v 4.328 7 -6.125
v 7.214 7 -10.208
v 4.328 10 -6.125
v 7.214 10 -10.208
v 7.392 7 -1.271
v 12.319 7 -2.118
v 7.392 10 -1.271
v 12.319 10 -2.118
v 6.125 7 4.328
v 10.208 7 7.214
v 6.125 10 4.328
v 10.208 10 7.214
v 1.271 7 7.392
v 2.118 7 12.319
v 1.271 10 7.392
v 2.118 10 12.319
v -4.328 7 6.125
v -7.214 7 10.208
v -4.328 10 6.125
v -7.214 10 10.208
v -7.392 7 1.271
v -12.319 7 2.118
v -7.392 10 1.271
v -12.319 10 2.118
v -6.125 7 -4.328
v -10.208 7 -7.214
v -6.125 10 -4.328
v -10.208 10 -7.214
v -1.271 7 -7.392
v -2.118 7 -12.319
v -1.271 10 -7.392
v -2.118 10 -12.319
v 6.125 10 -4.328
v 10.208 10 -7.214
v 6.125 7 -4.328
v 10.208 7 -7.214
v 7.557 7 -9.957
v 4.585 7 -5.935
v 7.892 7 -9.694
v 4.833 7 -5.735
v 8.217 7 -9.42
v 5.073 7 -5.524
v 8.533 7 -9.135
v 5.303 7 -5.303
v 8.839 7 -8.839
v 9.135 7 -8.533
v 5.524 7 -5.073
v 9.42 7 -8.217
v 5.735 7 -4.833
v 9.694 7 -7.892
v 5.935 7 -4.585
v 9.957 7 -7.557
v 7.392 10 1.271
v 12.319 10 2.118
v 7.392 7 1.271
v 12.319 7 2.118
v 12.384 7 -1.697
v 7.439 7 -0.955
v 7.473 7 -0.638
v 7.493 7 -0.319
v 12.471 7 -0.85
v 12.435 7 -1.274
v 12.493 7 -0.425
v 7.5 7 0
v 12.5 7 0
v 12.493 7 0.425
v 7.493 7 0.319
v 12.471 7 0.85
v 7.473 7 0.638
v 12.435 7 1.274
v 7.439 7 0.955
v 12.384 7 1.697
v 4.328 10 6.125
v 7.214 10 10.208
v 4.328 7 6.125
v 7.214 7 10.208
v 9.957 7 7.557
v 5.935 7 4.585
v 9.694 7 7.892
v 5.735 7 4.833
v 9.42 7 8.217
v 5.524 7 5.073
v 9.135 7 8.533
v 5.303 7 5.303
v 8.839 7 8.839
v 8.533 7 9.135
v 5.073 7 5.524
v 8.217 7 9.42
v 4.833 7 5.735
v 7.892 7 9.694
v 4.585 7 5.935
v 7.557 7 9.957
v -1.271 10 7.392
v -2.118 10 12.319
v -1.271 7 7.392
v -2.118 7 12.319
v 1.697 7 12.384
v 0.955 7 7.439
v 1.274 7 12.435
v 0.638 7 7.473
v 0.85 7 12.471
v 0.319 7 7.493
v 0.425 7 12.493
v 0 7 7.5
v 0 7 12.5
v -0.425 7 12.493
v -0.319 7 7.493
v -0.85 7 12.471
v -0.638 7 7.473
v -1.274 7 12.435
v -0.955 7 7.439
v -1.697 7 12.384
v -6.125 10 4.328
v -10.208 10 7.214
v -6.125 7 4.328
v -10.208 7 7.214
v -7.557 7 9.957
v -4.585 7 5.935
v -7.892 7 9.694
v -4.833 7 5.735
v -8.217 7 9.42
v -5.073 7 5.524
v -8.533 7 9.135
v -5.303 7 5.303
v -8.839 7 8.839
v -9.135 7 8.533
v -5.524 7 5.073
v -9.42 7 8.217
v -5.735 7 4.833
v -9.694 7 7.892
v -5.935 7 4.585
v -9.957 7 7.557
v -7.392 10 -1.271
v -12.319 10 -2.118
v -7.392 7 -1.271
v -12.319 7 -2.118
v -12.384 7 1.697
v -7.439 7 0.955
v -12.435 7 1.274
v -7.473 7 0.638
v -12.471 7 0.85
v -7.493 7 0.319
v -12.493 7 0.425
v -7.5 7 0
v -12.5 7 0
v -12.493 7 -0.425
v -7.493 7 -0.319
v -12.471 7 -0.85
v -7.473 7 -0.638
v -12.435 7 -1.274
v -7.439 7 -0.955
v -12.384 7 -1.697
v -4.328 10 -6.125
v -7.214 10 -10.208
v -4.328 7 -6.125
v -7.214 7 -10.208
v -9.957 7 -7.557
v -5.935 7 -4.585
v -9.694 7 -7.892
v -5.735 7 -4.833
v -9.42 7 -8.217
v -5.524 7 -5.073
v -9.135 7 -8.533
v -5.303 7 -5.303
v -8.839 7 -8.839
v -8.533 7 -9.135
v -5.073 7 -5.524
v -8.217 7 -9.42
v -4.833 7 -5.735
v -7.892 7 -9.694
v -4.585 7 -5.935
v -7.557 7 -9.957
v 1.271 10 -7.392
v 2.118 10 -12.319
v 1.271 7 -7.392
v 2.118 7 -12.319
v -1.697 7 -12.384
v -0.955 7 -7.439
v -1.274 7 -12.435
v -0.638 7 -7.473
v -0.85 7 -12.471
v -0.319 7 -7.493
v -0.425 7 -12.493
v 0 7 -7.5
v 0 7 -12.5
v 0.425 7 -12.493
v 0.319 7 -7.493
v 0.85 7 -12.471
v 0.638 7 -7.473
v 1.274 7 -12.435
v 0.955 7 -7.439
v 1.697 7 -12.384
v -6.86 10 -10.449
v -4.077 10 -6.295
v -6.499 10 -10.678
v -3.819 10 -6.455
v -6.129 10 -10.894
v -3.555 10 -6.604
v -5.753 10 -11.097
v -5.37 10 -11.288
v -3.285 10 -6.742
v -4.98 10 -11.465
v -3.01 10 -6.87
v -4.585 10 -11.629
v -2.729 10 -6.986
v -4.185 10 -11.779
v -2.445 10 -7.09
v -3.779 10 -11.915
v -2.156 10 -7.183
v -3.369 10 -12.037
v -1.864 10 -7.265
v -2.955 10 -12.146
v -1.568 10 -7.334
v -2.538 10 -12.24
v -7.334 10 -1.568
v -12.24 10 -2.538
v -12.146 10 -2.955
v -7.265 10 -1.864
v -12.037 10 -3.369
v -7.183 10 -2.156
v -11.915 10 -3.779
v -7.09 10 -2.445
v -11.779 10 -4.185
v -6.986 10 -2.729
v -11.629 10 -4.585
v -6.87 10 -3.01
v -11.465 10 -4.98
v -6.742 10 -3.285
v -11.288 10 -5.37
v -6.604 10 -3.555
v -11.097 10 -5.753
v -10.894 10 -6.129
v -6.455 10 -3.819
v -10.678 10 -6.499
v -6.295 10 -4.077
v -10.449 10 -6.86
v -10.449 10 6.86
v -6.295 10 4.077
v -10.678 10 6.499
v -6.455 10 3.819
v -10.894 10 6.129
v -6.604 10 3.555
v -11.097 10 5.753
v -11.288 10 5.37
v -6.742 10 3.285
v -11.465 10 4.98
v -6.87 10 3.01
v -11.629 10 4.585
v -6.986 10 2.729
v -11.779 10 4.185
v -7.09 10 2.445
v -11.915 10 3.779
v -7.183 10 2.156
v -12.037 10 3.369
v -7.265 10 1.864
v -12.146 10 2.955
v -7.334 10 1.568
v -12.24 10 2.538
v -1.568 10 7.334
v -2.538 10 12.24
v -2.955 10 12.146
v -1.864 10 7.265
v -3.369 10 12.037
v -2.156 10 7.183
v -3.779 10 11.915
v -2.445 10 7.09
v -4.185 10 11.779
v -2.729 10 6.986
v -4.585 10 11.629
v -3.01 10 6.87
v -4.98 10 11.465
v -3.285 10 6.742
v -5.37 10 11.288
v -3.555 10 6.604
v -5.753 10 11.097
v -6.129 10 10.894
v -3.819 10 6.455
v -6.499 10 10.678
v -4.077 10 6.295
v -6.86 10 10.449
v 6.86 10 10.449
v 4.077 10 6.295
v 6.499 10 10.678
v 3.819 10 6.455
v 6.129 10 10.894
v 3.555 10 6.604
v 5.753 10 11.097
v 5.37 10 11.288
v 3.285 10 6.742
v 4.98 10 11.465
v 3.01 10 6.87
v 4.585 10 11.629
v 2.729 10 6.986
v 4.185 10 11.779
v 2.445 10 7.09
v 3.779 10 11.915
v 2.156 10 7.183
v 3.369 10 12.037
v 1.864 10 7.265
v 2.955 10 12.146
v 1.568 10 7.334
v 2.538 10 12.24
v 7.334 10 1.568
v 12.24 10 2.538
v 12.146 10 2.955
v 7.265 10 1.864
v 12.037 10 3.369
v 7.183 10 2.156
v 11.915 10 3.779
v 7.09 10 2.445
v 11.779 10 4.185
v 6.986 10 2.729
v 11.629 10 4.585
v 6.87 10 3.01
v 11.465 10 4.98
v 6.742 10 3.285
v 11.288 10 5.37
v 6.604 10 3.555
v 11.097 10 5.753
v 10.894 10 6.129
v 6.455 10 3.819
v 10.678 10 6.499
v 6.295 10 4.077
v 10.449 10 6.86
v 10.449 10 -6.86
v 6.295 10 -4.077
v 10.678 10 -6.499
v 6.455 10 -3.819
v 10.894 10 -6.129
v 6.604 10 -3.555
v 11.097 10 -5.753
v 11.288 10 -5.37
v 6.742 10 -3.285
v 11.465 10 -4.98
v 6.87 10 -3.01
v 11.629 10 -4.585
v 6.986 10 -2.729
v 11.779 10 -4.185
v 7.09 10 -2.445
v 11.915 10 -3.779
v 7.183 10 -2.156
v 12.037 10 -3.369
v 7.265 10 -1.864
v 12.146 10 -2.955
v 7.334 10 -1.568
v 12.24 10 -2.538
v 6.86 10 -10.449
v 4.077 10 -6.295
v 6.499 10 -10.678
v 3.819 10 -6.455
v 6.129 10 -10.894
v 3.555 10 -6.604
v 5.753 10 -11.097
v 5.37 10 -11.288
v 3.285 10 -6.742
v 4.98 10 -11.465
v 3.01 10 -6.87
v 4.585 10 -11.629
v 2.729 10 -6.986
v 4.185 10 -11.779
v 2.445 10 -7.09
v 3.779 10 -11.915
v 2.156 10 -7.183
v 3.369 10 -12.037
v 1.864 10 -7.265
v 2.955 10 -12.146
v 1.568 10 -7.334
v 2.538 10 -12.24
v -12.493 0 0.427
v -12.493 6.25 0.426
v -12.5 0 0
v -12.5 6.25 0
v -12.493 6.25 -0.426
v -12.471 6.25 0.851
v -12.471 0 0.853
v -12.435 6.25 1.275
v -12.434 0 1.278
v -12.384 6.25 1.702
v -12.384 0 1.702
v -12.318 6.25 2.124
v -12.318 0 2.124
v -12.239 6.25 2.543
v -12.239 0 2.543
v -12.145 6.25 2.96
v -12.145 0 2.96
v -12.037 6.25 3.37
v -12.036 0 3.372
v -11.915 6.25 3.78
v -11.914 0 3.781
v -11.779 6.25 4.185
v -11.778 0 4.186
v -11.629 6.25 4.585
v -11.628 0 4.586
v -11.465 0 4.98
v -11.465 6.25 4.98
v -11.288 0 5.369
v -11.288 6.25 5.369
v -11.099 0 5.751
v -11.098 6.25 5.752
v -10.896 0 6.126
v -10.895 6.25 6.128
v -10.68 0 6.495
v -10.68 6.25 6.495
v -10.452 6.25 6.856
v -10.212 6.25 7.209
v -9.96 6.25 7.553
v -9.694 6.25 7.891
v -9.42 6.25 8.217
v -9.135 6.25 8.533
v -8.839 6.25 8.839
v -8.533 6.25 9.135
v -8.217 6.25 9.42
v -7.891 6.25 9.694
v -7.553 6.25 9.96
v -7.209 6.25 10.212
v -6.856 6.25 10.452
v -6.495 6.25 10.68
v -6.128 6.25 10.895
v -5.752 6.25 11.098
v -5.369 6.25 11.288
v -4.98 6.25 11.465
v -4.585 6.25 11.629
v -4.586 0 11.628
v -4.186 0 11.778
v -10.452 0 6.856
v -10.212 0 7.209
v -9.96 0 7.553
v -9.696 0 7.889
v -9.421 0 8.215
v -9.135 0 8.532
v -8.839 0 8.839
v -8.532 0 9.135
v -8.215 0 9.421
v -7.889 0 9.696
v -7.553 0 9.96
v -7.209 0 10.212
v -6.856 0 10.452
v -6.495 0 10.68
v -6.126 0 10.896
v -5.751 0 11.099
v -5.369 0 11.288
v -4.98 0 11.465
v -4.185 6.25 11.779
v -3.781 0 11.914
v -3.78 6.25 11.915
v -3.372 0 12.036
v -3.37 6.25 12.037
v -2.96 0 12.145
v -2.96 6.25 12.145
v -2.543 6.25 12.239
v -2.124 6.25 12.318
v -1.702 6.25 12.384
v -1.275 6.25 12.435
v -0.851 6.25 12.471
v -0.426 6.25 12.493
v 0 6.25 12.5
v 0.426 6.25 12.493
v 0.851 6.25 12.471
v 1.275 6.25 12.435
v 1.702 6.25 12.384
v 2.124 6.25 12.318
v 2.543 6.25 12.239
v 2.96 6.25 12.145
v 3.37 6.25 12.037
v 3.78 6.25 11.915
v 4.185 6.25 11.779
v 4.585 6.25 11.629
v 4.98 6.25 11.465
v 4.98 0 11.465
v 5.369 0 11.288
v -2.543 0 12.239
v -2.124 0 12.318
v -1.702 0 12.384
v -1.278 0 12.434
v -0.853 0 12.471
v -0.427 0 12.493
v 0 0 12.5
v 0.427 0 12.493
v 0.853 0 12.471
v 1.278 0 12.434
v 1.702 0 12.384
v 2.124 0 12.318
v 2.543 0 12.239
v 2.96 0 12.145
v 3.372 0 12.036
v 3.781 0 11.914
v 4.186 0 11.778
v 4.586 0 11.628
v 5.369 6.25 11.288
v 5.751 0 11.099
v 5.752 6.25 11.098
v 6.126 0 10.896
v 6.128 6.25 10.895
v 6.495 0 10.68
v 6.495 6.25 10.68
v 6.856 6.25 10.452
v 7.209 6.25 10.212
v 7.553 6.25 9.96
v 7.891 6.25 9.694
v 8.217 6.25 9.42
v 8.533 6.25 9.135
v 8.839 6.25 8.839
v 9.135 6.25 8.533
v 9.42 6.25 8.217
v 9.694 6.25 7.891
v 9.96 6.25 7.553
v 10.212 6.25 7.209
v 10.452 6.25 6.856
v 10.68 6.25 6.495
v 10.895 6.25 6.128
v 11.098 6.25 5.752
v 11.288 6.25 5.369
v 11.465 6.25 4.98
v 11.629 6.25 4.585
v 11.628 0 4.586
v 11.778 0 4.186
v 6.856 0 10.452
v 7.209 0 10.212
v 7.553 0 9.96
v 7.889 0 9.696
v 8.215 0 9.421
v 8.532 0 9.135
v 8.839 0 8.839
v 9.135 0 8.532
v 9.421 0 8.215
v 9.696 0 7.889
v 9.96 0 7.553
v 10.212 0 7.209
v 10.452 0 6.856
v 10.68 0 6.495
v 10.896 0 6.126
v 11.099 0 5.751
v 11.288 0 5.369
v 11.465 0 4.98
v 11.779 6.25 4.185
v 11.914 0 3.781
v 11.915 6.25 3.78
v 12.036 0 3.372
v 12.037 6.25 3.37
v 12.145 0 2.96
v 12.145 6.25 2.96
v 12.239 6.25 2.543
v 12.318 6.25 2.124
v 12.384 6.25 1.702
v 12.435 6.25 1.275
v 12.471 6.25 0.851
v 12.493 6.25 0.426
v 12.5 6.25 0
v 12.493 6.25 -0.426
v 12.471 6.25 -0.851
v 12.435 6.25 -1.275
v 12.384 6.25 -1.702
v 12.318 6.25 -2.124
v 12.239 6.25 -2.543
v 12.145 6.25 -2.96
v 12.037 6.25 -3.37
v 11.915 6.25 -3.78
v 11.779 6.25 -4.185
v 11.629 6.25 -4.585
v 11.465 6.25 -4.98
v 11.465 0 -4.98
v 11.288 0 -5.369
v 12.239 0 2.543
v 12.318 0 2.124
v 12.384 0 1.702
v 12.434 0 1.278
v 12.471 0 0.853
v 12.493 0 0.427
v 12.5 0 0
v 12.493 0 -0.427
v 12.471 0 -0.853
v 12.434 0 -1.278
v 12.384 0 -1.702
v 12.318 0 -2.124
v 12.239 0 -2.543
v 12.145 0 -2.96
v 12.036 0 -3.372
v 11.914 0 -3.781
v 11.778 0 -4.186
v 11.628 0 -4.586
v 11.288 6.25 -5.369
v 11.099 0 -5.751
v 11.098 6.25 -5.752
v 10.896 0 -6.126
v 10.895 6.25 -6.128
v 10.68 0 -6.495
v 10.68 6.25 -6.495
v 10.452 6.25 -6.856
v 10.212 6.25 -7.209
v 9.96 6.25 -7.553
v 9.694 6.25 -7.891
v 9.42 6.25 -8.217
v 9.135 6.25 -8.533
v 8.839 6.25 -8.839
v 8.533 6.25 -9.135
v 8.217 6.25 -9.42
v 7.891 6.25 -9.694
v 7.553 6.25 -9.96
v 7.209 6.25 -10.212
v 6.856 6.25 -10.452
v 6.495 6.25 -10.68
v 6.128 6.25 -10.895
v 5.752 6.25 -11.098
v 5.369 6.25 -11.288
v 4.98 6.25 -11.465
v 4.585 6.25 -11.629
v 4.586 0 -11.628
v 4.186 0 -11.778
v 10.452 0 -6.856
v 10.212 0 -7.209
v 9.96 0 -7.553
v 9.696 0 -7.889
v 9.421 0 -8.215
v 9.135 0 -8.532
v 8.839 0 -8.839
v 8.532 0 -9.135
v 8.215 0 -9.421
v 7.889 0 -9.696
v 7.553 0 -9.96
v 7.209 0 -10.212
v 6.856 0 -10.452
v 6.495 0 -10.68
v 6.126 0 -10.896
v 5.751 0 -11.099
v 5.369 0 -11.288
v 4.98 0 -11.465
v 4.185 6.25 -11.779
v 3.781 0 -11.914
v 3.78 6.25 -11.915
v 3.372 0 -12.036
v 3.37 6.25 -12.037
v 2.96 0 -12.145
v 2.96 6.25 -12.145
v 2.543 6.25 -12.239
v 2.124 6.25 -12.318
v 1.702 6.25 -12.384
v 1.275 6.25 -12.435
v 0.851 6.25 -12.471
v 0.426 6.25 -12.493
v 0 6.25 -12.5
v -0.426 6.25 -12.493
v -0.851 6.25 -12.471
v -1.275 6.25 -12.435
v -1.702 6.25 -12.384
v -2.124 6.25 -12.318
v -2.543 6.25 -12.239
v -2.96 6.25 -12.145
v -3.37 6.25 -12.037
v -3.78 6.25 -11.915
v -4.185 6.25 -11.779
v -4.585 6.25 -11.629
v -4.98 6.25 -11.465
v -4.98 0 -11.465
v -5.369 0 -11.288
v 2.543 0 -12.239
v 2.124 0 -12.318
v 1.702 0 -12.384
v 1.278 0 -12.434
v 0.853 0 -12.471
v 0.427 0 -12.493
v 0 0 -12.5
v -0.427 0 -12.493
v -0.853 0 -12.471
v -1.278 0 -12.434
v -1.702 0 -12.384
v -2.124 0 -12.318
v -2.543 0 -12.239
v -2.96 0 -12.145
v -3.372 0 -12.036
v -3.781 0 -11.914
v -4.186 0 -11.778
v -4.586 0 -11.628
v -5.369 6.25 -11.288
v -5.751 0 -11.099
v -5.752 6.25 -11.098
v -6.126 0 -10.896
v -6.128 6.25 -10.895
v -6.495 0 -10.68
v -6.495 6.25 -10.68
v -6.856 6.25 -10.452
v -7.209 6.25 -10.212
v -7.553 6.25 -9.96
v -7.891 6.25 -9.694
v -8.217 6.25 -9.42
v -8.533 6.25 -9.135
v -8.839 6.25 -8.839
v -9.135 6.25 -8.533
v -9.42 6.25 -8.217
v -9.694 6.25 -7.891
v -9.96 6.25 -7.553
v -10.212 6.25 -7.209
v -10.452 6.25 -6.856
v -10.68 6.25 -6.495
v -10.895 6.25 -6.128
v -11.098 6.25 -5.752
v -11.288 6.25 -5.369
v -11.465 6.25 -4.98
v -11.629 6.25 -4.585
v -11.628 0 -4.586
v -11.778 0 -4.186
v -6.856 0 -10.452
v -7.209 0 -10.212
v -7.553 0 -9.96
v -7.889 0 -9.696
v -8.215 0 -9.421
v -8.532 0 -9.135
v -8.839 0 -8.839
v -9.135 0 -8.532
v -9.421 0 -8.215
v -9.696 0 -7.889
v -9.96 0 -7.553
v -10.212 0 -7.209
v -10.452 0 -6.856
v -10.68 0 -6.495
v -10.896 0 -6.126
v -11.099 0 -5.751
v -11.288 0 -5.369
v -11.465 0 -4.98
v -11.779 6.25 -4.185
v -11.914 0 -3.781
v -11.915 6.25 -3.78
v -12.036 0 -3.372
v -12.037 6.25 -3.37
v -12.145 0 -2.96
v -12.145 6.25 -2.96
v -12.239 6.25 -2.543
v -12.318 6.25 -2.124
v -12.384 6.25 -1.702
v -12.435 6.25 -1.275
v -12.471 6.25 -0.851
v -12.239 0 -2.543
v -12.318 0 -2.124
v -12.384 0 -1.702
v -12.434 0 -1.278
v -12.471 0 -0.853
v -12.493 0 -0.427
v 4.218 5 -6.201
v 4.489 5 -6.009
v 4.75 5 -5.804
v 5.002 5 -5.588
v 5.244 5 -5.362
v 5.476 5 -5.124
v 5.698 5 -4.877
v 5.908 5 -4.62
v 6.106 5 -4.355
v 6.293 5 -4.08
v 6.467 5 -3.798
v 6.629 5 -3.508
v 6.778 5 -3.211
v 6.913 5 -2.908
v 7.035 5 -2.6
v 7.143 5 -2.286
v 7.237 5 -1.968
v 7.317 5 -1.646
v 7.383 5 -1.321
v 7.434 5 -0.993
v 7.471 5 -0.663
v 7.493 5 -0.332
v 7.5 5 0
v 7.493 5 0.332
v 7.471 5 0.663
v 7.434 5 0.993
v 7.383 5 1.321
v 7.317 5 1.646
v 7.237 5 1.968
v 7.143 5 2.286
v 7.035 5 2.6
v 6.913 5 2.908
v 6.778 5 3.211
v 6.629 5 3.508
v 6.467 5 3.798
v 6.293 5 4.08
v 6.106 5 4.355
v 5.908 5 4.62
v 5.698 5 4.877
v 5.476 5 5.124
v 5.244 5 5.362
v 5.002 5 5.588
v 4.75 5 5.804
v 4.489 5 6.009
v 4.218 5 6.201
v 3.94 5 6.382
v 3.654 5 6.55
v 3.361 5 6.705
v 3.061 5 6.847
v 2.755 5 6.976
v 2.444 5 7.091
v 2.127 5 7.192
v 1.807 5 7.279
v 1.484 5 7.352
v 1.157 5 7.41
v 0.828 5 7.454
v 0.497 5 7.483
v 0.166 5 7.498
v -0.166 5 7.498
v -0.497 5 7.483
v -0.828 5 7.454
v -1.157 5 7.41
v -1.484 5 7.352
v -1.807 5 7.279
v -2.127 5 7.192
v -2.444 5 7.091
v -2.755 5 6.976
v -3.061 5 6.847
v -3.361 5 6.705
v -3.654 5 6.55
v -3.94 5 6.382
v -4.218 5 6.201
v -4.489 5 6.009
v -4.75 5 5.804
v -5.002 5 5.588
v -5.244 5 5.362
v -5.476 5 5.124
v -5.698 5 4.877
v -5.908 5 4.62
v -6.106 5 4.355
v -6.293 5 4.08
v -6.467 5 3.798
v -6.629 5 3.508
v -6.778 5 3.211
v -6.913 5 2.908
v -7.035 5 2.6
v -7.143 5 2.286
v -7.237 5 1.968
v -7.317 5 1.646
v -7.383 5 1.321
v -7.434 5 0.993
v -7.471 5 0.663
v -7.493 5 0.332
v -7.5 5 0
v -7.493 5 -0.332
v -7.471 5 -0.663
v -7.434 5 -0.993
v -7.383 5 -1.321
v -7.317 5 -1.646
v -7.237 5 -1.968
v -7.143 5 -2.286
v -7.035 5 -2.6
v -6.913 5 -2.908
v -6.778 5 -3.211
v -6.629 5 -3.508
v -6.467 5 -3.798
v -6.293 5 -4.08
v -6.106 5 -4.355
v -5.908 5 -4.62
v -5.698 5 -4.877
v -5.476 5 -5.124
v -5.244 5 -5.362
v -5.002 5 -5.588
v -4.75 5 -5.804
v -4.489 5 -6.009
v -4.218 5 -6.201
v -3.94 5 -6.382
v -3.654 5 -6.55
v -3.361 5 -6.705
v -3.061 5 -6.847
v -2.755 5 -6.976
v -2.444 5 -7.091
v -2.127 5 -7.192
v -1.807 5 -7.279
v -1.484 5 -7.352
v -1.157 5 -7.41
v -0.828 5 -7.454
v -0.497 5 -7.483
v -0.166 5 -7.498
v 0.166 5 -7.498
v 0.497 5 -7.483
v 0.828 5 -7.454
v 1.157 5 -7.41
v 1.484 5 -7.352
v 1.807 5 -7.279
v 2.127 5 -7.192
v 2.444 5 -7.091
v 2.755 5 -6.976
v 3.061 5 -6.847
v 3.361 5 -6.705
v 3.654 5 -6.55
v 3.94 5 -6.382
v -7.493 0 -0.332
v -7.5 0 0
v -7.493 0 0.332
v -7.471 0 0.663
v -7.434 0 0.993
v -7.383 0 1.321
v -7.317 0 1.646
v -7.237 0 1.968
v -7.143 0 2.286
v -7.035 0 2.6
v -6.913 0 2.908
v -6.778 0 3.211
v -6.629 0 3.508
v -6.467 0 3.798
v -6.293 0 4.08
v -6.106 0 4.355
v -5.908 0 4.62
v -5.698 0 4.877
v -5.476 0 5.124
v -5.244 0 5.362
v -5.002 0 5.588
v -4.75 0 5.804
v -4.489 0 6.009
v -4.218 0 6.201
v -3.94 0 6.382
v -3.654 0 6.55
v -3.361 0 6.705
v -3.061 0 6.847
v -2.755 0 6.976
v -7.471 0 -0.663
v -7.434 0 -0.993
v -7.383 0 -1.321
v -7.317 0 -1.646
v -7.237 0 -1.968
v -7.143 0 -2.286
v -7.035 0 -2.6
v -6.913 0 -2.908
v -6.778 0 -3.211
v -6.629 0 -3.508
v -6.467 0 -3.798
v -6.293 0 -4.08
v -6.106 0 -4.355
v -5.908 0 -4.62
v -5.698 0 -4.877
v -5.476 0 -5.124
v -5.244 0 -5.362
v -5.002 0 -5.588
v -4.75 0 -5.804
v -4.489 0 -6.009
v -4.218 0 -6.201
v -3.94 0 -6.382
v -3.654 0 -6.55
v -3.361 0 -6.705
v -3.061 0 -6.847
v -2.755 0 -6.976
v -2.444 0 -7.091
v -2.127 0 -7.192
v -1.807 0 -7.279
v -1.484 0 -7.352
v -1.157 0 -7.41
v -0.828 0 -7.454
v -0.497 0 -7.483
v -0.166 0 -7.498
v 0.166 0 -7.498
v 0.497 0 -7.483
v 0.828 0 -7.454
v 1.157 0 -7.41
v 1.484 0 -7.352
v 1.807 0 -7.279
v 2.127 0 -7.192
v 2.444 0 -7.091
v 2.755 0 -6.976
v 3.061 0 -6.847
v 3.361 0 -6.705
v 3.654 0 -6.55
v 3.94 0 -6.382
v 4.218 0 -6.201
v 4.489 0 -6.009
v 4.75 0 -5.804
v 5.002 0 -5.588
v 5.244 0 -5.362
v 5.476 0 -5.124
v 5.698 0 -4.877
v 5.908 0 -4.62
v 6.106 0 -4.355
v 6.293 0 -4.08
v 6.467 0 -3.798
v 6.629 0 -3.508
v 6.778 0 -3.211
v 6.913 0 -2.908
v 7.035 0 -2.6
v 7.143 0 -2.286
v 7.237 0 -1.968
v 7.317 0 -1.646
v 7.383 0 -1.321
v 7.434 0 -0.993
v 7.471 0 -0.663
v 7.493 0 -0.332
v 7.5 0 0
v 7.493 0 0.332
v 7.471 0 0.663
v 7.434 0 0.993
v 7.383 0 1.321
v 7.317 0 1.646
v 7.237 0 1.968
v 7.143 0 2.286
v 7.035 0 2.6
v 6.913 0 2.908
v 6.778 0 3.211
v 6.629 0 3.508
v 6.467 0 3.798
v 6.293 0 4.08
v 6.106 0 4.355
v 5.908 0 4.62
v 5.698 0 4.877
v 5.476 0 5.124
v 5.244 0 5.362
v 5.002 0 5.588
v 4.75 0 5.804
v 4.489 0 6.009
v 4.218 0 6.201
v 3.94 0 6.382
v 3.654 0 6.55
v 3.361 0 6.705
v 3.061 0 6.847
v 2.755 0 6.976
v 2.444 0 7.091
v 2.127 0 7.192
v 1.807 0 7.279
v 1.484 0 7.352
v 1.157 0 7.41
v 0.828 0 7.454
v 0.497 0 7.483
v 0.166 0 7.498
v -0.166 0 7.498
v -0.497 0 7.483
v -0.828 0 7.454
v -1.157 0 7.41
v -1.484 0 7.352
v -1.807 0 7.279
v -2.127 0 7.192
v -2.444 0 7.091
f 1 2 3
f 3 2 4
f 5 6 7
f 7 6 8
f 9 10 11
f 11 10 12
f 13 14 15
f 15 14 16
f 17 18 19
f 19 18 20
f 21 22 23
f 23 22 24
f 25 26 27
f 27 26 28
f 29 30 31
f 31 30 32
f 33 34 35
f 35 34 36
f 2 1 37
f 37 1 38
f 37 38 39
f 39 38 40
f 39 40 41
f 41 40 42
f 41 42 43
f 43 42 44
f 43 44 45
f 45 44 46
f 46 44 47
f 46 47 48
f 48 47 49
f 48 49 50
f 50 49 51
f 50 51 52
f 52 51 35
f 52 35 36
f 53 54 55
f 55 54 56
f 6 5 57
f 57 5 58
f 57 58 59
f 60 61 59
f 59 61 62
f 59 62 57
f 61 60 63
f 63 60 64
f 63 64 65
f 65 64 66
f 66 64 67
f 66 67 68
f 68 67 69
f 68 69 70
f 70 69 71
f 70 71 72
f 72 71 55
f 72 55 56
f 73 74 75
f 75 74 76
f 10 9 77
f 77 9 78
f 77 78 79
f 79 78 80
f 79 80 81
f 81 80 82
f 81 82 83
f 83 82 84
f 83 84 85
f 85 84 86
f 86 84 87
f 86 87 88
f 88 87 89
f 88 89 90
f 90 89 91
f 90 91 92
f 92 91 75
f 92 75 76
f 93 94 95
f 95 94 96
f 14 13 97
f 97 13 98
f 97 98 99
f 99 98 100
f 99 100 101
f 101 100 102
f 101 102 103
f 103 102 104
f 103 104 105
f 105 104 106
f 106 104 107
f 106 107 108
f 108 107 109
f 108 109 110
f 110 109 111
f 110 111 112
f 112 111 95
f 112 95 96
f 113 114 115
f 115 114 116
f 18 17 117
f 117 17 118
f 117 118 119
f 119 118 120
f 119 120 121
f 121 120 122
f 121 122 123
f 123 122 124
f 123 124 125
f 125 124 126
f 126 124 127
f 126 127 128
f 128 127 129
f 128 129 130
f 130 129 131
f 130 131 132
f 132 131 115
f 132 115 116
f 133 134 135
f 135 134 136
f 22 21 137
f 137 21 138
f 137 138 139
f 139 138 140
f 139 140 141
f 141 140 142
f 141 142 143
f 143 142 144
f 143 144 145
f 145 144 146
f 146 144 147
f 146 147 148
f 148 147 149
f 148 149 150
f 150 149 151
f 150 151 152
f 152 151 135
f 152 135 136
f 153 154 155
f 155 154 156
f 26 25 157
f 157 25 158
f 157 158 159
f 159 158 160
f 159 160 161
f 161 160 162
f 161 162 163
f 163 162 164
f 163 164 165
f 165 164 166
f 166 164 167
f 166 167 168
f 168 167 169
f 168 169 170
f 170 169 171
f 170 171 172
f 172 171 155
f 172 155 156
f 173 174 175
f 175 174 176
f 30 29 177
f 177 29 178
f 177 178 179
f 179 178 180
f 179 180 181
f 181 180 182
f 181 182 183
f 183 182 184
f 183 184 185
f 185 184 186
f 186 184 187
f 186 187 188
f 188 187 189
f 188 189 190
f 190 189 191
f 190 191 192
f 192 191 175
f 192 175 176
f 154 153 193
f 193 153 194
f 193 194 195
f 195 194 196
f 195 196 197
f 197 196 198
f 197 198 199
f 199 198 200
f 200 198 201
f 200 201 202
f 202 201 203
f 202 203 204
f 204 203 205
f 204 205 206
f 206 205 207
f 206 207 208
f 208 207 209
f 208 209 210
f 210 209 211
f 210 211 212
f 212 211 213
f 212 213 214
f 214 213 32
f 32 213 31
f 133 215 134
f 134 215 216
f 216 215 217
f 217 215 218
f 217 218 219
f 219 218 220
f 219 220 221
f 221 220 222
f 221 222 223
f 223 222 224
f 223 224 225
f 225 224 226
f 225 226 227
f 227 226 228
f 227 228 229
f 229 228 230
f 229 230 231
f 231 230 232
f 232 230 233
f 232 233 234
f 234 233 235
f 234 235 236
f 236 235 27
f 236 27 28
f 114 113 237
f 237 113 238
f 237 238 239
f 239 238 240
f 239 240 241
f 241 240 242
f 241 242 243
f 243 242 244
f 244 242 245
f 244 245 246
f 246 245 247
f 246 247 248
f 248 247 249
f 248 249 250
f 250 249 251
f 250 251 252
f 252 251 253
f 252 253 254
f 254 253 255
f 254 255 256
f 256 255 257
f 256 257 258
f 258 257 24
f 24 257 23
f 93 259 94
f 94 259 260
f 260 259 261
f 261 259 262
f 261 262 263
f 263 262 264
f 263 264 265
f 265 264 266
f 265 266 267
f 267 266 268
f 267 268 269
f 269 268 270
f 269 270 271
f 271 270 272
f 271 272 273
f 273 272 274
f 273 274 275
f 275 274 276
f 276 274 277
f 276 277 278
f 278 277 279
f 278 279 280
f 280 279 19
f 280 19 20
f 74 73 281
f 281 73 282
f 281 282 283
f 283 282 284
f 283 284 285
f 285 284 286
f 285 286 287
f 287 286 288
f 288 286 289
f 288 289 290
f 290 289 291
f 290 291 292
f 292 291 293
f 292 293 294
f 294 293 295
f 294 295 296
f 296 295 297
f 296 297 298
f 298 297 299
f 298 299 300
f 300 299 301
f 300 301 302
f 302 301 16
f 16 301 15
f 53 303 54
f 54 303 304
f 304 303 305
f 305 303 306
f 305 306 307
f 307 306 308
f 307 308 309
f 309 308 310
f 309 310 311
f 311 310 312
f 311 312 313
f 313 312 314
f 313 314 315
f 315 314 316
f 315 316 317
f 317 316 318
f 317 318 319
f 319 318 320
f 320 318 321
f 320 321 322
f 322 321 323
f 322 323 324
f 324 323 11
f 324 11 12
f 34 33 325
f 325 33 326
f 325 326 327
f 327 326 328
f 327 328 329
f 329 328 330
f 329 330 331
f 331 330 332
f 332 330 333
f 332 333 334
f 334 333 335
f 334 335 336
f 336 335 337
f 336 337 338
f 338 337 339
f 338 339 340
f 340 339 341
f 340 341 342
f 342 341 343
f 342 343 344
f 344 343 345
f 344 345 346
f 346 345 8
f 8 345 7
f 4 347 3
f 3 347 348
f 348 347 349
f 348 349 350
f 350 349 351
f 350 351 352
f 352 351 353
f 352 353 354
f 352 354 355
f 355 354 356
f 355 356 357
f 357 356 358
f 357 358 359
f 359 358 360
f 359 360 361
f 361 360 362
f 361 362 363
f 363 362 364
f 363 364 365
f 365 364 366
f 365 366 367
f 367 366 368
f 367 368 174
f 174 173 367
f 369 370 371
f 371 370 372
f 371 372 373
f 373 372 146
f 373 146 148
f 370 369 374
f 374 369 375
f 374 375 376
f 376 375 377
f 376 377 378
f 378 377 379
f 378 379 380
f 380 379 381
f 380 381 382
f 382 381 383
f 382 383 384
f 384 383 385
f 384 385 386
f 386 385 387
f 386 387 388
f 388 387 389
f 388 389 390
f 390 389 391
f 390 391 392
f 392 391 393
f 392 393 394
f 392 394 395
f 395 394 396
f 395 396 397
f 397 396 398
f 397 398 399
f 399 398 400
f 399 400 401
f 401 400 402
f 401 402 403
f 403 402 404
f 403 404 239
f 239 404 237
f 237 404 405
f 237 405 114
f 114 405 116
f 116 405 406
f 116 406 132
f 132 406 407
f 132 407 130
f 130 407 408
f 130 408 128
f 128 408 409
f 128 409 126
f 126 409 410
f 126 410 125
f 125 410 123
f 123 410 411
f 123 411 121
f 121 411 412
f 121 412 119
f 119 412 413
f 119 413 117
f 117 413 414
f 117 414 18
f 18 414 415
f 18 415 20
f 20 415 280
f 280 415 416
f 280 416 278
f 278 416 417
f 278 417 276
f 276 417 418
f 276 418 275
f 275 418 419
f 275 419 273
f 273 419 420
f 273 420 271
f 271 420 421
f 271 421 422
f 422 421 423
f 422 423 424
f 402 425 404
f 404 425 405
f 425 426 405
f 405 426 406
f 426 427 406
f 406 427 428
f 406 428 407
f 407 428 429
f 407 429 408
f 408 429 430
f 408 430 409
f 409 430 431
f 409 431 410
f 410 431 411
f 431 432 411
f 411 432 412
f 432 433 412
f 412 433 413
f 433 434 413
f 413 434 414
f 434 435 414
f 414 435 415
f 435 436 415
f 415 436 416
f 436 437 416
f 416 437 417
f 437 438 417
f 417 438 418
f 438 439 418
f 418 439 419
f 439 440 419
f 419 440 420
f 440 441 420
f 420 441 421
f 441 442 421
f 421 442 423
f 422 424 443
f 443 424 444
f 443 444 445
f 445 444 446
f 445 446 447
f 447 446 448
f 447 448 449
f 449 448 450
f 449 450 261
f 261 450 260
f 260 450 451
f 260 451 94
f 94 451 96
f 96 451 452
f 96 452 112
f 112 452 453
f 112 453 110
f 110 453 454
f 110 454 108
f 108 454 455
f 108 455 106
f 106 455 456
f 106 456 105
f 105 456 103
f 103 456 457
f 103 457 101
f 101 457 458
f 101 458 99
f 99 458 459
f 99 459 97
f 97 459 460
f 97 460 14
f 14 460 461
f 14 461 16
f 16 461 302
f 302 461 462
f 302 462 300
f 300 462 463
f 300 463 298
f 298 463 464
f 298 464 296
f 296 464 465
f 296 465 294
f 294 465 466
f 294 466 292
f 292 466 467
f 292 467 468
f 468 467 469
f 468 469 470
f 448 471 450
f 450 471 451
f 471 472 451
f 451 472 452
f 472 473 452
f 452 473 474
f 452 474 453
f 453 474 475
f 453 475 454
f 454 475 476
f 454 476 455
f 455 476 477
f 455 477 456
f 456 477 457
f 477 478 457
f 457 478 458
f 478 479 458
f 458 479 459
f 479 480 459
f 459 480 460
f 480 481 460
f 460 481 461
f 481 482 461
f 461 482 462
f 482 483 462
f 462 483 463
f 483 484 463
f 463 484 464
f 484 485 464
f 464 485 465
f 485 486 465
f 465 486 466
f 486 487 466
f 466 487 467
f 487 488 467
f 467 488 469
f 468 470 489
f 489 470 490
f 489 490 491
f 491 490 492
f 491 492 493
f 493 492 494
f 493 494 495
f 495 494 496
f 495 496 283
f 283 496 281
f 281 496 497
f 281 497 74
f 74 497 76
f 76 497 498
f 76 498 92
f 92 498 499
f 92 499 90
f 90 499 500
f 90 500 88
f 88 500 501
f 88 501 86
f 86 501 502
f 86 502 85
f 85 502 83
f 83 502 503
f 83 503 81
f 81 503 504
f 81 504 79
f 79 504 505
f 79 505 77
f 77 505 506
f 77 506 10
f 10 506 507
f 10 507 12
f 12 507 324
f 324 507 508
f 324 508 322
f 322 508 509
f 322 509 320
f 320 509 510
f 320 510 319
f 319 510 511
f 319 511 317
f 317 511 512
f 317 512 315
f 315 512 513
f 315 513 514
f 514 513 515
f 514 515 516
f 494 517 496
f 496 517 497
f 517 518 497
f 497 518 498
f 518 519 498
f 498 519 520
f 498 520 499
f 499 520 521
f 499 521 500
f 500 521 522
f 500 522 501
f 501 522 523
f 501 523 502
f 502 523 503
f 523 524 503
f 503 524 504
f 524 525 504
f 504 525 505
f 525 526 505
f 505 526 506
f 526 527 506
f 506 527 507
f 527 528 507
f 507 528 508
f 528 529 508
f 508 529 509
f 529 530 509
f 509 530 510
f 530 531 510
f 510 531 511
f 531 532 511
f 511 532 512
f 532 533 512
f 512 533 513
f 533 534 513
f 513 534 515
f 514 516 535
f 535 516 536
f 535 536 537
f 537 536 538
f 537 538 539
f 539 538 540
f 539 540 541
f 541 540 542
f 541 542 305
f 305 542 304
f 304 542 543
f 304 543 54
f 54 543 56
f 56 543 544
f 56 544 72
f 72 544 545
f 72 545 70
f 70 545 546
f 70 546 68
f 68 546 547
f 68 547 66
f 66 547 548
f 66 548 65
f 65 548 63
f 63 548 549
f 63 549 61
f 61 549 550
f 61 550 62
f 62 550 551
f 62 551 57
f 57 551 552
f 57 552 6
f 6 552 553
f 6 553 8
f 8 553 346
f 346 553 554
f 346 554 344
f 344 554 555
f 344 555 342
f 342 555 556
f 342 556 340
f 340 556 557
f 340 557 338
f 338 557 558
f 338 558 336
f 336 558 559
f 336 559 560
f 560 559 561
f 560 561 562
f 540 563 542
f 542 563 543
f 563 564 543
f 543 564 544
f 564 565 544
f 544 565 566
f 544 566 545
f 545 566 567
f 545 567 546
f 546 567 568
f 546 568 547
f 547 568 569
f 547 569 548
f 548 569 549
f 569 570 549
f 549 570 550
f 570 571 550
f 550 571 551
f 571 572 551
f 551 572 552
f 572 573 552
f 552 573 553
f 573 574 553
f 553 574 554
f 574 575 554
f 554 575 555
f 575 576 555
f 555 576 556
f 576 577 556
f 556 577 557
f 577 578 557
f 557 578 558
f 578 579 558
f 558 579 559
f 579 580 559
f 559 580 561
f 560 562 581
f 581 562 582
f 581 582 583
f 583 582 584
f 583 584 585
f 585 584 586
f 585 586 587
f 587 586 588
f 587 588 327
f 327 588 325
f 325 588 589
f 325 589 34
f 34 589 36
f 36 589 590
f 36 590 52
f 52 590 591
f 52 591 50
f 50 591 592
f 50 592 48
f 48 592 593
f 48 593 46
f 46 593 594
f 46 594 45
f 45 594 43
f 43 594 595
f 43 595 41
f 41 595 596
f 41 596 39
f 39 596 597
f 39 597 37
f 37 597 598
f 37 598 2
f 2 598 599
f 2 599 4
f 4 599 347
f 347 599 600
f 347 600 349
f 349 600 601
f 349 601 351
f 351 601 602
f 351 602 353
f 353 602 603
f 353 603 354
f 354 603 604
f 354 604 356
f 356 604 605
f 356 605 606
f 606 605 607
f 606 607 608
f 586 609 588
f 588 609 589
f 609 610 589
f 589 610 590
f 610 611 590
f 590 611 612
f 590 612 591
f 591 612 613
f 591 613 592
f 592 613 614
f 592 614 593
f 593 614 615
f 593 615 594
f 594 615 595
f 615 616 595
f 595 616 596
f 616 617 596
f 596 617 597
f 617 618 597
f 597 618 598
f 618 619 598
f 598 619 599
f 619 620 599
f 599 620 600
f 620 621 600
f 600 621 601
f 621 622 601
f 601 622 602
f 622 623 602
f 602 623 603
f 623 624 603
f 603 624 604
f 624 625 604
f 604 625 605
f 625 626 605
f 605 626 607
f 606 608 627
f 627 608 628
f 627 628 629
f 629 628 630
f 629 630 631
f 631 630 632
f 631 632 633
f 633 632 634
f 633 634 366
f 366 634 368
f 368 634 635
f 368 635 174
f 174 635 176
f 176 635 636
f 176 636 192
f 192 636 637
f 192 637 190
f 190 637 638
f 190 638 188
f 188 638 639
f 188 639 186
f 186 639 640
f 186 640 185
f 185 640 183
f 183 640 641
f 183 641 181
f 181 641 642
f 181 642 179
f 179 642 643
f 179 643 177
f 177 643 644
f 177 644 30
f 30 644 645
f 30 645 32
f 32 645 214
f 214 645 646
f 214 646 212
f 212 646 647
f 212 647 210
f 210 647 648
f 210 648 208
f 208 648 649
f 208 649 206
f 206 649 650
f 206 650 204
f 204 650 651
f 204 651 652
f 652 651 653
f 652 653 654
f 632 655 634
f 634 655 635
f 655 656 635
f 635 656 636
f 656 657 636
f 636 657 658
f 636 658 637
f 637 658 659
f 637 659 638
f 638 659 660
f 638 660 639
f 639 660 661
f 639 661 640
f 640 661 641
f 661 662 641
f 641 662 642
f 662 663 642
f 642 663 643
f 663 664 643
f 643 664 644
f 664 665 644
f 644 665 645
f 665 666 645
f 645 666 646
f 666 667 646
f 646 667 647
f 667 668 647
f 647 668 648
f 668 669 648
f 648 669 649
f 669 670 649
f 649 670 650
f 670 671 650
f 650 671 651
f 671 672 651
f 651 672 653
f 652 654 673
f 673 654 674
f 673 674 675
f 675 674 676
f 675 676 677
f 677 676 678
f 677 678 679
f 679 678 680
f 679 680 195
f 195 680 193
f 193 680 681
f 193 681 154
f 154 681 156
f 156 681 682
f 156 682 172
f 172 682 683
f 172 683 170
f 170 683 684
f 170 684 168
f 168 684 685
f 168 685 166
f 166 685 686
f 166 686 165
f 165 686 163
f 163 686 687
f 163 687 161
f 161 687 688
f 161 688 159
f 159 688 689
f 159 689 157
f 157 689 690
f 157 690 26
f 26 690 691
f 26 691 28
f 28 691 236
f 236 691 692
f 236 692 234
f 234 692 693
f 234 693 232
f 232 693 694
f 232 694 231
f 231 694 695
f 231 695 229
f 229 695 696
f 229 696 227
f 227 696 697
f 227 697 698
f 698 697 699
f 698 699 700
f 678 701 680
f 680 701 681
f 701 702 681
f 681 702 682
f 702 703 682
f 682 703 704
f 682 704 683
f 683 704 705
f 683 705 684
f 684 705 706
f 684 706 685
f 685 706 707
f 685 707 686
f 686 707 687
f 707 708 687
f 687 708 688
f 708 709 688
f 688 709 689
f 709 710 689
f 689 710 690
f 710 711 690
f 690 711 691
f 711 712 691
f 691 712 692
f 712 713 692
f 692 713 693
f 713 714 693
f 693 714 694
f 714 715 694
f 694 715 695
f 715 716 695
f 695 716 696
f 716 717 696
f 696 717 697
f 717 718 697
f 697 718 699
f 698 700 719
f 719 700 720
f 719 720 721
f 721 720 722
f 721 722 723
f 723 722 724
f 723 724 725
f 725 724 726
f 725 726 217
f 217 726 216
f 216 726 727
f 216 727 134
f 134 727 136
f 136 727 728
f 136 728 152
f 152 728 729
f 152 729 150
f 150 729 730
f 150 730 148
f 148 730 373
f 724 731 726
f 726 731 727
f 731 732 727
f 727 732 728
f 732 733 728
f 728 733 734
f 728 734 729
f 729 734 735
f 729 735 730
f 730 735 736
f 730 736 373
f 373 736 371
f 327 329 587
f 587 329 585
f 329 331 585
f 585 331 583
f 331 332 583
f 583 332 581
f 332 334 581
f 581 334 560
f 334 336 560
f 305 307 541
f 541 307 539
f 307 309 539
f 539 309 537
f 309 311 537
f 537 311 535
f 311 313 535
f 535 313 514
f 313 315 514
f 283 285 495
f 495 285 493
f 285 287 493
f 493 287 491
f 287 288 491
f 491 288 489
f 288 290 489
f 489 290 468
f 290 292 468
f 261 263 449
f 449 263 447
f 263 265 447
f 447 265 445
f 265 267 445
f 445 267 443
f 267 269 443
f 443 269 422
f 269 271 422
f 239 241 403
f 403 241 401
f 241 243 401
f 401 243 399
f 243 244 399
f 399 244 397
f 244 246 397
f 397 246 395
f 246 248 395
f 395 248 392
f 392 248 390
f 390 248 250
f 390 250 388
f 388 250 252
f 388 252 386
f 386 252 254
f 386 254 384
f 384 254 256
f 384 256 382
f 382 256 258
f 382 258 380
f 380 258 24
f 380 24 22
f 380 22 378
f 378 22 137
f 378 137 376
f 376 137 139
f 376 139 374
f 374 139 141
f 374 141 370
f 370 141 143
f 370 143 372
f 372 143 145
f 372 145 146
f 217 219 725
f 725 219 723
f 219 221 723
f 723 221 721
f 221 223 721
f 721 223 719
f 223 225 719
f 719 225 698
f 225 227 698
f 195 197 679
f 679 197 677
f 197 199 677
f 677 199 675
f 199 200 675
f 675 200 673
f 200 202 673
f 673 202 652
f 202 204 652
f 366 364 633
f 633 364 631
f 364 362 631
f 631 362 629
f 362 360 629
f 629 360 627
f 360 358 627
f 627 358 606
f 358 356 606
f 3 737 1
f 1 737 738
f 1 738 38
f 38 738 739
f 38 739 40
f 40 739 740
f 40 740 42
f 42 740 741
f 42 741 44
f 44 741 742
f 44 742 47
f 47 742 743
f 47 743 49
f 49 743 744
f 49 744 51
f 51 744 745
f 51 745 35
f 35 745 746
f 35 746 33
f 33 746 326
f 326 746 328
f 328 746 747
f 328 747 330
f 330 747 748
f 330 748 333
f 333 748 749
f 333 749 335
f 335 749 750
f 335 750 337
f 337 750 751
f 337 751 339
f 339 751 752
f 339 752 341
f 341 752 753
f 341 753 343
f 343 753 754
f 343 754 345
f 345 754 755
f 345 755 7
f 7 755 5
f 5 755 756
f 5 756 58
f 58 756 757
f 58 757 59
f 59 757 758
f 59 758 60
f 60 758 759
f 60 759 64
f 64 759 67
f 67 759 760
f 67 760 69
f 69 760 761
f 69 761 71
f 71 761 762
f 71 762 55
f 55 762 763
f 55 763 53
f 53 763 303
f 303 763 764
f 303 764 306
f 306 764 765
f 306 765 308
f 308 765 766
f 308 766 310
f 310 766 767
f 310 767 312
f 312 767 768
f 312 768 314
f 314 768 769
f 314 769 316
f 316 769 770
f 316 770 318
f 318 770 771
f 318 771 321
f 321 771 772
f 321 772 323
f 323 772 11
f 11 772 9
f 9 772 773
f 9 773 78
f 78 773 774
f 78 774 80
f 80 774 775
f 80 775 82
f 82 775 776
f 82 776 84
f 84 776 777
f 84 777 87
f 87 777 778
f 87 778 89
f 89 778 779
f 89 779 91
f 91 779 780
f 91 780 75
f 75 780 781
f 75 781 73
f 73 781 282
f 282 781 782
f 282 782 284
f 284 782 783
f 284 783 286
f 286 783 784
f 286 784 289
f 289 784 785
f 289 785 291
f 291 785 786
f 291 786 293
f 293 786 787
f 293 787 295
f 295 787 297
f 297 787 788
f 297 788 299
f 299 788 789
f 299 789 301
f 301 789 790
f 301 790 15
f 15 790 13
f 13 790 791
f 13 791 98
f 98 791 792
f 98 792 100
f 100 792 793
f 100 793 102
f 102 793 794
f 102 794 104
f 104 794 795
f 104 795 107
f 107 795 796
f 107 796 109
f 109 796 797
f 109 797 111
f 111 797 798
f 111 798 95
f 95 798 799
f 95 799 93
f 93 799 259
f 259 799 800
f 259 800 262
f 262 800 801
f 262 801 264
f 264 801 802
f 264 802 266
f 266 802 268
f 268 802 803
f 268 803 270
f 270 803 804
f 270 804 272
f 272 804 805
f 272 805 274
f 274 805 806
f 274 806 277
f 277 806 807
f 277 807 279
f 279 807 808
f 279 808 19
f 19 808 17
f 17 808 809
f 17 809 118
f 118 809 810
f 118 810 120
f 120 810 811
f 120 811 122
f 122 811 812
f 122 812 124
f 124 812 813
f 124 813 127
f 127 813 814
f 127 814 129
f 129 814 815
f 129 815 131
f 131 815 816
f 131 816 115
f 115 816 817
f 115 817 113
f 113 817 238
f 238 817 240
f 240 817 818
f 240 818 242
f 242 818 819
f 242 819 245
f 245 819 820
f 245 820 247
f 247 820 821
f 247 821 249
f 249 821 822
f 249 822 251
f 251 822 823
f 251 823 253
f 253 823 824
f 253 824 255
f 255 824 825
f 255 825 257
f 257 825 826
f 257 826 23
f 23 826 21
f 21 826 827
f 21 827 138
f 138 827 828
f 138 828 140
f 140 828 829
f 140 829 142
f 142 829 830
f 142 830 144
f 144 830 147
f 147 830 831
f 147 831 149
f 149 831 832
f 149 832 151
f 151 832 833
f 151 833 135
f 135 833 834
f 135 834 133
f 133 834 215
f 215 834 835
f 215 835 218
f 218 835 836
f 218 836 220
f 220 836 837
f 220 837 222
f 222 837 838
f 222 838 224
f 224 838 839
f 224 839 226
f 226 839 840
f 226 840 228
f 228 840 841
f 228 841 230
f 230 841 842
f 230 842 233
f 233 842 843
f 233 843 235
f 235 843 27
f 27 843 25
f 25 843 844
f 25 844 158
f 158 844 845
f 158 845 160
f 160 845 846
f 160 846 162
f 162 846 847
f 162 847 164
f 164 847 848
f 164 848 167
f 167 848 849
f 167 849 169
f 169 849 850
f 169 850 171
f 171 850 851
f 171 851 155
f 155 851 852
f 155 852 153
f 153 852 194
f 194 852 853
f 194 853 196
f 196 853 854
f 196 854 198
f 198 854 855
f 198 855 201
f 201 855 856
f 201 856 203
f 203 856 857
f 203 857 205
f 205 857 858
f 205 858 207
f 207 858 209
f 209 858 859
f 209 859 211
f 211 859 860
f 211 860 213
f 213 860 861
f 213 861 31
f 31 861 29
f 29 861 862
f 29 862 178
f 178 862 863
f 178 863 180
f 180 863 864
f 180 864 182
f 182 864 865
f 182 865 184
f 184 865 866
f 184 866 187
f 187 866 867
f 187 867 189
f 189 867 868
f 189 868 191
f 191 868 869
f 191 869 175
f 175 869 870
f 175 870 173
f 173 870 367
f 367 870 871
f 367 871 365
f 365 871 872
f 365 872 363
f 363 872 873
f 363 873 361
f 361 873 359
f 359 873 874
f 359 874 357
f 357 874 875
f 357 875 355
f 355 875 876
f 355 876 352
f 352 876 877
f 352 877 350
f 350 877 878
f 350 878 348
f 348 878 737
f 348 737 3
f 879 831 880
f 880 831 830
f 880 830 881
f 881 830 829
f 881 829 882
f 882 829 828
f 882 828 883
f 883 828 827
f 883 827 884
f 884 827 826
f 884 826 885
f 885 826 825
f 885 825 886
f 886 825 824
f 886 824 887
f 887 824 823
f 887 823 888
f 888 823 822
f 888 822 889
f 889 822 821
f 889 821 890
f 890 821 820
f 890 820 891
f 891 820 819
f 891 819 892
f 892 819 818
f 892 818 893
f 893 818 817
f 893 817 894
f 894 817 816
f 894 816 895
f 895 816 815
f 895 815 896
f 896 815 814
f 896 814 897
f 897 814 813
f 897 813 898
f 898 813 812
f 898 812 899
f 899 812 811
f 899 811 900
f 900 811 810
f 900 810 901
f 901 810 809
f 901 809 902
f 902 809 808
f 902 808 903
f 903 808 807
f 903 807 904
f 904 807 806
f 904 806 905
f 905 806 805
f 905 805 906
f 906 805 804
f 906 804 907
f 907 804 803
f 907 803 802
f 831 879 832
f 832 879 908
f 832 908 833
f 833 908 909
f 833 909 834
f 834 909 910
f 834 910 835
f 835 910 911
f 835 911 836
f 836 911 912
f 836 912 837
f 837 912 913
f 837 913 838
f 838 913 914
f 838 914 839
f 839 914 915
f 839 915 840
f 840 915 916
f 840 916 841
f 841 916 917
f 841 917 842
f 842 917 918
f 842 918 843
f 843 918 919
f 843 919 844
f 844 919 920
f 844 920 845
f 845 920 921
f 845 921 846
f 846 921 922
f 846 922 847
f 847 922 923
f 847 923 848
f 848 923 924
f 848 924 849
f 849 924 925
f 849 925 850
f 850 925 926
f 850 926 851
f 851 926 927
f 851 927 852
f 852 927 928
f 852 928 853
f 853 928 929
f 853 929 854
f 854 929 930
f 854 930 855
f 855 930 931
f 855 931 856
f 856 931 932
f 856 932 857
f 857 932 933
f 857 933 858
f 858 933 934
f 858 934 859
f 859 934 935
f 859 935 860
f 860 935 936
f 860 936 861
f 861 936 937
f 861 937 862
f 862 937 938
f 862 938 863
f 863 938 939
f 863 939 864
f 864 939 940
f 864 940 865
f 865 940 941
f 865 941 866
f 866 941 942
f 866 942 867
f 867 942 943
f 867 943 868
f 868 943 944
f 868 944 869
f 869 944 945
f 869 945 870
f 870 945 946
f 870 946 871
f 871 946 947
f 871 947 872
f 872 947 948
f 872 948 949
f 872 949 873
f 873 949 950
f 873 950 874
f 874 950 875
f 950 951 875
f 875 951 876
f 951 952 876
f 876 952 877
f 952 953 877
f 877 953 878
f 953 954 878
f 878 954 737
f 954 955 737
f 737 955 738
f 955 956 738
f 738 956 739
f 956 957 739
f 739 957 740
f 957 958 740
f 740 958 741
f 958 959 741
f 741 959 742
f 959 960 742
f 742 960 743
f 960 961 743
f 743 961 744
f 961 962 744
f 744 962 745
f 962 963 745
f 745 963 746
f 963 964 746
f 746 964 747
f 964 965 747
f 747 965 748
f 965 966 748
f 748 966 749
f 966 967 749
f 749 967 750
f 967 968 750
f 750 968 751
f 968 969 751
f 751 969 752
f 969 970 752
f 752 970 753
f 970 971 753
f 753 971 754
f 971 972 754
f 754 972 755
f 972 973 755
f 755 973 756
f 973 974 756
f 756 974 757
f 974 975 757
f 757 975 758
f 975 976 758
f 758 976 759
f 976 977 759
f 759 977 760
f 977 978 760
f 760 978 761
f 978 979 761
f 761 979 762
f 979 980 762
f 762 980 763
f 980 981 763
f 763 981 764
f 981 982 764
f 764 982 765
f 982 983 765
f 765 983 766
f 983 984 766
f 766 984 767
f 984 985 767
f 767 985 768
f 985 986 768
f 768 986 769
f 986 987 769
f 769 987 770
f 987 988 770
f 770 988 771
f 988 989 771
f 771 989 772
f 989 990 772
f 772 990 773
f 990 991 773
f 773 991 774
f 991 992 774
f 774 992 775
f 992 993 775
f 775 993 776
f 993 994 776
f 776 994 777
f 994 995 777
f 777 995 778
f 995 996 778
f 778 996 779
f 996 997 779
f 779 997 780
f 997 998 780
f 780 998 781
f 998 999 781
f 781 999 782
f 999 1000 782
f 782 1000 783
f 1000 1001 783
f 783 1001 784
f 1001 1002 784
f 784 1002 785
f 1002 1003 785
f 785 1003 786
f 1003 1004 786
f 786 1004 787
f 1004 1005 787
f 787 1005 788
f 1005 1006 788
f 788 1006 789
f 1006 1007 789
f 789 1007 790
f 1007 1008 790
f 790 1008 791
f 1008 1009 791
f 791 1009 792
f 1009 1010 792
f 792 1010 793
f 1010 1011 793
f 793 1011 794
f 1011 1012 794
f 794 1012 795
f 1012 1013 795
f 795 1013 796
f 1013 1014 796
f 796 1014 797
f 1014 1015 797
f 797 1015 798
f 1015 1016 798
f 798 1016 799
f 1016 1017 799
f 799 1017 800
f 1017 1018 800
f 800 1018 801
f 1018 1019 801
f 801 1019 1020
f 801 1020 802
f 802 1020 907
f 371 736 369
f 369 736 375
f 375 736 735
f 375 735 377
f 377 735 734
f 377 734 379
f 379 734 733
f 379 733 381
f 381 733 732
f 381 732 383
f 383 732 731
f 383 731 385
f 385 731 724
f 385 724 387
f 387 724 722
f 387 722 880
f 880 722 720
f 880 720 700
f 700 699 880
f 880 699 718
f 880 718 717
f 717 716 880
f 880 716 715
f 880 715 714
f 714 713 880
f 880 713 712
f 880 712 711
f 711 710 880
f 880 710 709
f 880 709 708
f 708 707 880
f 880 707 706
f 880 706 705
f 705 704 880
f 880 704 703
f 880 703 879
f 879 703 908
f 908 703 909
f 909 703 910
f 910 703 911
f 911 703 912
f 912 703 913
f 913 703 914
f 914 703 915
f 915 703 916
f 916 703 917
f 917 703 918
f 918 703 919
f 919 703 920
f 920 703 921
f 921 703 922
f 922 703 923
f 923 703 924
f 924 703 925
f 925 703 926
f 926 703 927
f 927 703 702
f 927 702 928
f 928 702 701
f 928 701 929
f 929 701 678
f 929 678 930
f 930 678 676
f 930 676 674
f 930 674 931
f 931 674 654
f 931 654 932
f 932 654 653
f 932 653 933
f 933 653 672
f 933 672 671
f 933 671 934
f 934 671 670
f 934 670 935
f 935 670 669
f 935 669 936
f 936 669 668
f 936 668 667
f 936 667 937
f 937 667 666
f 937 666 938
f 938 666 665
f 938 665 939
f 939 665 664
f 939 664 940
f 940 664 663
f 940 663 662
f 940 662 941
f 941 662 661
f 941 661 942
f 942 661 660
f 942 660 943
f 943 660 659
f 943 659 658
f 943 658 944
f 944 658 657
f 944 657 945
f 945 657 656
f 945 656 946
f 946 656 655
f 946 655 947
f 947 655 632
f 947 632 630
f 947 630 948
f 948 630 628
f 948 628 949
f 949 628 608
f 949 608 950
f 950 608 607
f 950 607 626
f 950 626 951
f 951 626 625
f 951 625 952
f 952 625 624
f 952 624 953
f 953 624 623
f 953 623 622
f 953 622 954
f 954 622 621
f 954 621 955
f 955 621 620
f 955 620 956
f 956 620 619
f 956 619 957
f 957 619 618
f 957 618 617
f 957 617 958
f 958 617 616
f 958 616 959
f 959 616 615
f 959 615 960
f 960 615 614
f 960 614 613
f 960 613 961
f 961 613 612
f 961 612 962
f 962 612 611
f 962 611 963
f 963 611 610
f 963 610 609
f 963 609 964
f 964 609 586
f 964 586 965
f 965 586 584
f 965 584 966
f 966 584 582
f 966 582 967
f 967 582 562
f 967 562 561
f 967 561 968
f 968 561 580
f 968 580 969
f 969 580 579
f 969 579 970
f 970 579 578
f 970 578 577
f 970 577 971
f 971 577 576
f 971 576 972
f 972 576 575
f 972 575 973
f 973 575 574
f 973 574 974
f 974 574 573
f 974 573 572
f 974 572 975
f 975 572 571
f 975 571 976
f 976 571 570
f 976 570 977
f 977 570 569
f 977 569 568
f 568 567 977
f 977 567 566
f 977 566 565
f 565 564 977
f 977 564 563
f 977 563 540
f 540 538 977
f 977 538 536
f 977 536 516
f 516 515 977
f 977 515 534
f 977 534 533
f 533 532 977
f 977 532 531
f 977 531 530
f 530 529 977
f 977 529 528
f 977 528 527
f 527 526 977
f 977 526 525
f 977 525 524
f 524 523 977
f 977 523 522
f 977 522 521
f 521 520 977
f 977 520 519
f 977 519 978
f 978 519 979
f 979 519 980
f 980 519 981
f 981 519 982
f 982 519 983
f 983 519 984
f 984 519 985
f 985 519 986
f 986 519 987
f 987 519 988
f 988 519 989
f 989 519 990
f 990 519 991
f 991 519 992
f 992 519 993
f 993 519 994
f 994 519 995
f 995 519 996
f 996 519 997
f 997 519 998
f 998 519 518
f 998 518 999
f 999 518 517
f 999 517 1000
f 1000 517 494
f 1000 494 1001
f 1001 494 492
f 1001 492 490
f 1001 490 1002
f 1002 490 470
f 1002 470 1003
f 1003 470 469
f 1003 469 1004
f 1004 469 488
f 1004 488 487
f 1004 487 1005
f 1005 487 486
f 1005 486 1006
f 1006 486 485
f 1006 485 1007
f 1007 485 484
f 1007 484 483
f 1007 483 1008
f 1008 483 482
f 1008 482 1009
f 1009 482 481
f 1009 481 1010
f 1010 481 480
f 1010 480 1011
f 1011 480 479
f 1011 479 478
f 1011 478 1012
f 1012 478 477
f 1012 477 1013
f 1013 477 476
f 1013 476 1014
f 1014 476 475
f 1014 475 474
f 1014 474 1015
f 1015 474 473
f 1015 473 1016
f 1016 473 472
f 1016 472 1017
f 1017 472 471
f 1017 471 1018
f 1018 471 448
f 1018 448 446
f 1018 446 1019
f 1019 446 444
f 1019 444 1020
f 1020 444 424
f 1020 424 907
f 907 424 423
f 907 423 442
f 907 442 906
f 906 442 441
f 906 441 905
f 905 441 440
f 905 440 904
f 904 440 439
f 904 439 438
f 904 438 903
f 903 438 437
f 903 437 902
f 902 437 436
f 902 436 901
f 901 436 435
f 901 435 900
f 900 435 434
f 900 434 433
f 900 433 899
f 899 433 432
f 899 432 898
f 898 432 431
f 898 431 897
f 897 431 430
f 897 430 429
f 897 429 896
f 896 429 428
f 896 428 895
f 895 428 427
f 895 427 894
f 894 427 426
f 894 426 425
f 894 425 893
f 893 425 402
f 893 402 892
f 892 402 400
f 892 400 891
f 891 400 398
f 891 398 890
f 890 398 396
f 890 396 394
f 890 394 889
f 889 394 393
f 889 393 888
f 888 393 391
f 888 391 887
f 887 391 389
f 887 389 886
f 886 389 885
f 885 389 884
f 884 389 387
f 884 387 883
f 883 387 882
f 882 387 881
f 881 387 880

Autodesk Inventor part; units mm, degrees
ref_plane "YZ Plane" through (0, 0, 0) normal (1, 0, 0) x (0, 1, 0)
ref_plane "XZ Plane" through (0, 0, 0) normal (0, 1, 0) x (-1, 0, 0)
ref_plane "XY Plane" through (0, 0, 0) normal (0, 0, 1) x (1, 0, 0)
sketch "Эскиз1" plane through (0, 0, 0) normal (0, 1, 0) x (-1, 0, 0)
  circle A0 centre (0, 0) radius 12.5
  circle A1 centre (0, 0) radius 7.5
  dimension "d0" = 25
  dimension "d1" = 15
extrude "Выдавливание1" add sketch "Эскиз1" along normal blind 10
sketch "Эскиз2" plane through (0, 10, 0) normal (0, 1, 0) x (1, 0, 0)
  circle A0 centre (0, 0) radius 12.5 projected
  line L0 (-2.1175, 12.3193) -> (0, 0)
  line L1 (2.1175, 12.3193) -> (0, 0)
  line L2 (-10.2084, 7.2138) -> (0, 0)
  line L3 (-7.2138, 10.2084) -> (0, 0)
  line L4 (-12.3193, -2.1175) -> (0, 0)
  line L5 (-12.3193, 2.1175) -> (0, 0)
  line L6 (-7.2138, -10.2084) -> (0, 0)
  line L7 (-10.2084, -7.2138) -> (0, 0)
  line L8 (2.1175, -12.3193) -> (0, 0)
  line L9 (-2.1175, -12.3193) -> (0, 0)
  line L10 (10.2084, -7.2138) -> (0, 0)
  line L11 (7.2138, -10.2084) -> (0, 0)
  line L12 (12.3193, 2.1175) -> (0, 0)
  line L13 (12.3193, -2.1175) -> (0, 0)
  line L14 (7.2138, 10.2084) -> (0, 0)
  line L15 (10.2084, 7.2138) -> (0, 0)
  dimension "d6" = 360
extrude "Выдавливание2" cut sketch "Эскиз2" against normal blind 3 contours A0 L13 L12 | L15 L14 A0 | L0 A0 L1 | L2 A0 L3 | L4 A0 L5 | L6 A0 L7 | L8 A0 L9 | L10 A0 L11
properties part number "pawn"
